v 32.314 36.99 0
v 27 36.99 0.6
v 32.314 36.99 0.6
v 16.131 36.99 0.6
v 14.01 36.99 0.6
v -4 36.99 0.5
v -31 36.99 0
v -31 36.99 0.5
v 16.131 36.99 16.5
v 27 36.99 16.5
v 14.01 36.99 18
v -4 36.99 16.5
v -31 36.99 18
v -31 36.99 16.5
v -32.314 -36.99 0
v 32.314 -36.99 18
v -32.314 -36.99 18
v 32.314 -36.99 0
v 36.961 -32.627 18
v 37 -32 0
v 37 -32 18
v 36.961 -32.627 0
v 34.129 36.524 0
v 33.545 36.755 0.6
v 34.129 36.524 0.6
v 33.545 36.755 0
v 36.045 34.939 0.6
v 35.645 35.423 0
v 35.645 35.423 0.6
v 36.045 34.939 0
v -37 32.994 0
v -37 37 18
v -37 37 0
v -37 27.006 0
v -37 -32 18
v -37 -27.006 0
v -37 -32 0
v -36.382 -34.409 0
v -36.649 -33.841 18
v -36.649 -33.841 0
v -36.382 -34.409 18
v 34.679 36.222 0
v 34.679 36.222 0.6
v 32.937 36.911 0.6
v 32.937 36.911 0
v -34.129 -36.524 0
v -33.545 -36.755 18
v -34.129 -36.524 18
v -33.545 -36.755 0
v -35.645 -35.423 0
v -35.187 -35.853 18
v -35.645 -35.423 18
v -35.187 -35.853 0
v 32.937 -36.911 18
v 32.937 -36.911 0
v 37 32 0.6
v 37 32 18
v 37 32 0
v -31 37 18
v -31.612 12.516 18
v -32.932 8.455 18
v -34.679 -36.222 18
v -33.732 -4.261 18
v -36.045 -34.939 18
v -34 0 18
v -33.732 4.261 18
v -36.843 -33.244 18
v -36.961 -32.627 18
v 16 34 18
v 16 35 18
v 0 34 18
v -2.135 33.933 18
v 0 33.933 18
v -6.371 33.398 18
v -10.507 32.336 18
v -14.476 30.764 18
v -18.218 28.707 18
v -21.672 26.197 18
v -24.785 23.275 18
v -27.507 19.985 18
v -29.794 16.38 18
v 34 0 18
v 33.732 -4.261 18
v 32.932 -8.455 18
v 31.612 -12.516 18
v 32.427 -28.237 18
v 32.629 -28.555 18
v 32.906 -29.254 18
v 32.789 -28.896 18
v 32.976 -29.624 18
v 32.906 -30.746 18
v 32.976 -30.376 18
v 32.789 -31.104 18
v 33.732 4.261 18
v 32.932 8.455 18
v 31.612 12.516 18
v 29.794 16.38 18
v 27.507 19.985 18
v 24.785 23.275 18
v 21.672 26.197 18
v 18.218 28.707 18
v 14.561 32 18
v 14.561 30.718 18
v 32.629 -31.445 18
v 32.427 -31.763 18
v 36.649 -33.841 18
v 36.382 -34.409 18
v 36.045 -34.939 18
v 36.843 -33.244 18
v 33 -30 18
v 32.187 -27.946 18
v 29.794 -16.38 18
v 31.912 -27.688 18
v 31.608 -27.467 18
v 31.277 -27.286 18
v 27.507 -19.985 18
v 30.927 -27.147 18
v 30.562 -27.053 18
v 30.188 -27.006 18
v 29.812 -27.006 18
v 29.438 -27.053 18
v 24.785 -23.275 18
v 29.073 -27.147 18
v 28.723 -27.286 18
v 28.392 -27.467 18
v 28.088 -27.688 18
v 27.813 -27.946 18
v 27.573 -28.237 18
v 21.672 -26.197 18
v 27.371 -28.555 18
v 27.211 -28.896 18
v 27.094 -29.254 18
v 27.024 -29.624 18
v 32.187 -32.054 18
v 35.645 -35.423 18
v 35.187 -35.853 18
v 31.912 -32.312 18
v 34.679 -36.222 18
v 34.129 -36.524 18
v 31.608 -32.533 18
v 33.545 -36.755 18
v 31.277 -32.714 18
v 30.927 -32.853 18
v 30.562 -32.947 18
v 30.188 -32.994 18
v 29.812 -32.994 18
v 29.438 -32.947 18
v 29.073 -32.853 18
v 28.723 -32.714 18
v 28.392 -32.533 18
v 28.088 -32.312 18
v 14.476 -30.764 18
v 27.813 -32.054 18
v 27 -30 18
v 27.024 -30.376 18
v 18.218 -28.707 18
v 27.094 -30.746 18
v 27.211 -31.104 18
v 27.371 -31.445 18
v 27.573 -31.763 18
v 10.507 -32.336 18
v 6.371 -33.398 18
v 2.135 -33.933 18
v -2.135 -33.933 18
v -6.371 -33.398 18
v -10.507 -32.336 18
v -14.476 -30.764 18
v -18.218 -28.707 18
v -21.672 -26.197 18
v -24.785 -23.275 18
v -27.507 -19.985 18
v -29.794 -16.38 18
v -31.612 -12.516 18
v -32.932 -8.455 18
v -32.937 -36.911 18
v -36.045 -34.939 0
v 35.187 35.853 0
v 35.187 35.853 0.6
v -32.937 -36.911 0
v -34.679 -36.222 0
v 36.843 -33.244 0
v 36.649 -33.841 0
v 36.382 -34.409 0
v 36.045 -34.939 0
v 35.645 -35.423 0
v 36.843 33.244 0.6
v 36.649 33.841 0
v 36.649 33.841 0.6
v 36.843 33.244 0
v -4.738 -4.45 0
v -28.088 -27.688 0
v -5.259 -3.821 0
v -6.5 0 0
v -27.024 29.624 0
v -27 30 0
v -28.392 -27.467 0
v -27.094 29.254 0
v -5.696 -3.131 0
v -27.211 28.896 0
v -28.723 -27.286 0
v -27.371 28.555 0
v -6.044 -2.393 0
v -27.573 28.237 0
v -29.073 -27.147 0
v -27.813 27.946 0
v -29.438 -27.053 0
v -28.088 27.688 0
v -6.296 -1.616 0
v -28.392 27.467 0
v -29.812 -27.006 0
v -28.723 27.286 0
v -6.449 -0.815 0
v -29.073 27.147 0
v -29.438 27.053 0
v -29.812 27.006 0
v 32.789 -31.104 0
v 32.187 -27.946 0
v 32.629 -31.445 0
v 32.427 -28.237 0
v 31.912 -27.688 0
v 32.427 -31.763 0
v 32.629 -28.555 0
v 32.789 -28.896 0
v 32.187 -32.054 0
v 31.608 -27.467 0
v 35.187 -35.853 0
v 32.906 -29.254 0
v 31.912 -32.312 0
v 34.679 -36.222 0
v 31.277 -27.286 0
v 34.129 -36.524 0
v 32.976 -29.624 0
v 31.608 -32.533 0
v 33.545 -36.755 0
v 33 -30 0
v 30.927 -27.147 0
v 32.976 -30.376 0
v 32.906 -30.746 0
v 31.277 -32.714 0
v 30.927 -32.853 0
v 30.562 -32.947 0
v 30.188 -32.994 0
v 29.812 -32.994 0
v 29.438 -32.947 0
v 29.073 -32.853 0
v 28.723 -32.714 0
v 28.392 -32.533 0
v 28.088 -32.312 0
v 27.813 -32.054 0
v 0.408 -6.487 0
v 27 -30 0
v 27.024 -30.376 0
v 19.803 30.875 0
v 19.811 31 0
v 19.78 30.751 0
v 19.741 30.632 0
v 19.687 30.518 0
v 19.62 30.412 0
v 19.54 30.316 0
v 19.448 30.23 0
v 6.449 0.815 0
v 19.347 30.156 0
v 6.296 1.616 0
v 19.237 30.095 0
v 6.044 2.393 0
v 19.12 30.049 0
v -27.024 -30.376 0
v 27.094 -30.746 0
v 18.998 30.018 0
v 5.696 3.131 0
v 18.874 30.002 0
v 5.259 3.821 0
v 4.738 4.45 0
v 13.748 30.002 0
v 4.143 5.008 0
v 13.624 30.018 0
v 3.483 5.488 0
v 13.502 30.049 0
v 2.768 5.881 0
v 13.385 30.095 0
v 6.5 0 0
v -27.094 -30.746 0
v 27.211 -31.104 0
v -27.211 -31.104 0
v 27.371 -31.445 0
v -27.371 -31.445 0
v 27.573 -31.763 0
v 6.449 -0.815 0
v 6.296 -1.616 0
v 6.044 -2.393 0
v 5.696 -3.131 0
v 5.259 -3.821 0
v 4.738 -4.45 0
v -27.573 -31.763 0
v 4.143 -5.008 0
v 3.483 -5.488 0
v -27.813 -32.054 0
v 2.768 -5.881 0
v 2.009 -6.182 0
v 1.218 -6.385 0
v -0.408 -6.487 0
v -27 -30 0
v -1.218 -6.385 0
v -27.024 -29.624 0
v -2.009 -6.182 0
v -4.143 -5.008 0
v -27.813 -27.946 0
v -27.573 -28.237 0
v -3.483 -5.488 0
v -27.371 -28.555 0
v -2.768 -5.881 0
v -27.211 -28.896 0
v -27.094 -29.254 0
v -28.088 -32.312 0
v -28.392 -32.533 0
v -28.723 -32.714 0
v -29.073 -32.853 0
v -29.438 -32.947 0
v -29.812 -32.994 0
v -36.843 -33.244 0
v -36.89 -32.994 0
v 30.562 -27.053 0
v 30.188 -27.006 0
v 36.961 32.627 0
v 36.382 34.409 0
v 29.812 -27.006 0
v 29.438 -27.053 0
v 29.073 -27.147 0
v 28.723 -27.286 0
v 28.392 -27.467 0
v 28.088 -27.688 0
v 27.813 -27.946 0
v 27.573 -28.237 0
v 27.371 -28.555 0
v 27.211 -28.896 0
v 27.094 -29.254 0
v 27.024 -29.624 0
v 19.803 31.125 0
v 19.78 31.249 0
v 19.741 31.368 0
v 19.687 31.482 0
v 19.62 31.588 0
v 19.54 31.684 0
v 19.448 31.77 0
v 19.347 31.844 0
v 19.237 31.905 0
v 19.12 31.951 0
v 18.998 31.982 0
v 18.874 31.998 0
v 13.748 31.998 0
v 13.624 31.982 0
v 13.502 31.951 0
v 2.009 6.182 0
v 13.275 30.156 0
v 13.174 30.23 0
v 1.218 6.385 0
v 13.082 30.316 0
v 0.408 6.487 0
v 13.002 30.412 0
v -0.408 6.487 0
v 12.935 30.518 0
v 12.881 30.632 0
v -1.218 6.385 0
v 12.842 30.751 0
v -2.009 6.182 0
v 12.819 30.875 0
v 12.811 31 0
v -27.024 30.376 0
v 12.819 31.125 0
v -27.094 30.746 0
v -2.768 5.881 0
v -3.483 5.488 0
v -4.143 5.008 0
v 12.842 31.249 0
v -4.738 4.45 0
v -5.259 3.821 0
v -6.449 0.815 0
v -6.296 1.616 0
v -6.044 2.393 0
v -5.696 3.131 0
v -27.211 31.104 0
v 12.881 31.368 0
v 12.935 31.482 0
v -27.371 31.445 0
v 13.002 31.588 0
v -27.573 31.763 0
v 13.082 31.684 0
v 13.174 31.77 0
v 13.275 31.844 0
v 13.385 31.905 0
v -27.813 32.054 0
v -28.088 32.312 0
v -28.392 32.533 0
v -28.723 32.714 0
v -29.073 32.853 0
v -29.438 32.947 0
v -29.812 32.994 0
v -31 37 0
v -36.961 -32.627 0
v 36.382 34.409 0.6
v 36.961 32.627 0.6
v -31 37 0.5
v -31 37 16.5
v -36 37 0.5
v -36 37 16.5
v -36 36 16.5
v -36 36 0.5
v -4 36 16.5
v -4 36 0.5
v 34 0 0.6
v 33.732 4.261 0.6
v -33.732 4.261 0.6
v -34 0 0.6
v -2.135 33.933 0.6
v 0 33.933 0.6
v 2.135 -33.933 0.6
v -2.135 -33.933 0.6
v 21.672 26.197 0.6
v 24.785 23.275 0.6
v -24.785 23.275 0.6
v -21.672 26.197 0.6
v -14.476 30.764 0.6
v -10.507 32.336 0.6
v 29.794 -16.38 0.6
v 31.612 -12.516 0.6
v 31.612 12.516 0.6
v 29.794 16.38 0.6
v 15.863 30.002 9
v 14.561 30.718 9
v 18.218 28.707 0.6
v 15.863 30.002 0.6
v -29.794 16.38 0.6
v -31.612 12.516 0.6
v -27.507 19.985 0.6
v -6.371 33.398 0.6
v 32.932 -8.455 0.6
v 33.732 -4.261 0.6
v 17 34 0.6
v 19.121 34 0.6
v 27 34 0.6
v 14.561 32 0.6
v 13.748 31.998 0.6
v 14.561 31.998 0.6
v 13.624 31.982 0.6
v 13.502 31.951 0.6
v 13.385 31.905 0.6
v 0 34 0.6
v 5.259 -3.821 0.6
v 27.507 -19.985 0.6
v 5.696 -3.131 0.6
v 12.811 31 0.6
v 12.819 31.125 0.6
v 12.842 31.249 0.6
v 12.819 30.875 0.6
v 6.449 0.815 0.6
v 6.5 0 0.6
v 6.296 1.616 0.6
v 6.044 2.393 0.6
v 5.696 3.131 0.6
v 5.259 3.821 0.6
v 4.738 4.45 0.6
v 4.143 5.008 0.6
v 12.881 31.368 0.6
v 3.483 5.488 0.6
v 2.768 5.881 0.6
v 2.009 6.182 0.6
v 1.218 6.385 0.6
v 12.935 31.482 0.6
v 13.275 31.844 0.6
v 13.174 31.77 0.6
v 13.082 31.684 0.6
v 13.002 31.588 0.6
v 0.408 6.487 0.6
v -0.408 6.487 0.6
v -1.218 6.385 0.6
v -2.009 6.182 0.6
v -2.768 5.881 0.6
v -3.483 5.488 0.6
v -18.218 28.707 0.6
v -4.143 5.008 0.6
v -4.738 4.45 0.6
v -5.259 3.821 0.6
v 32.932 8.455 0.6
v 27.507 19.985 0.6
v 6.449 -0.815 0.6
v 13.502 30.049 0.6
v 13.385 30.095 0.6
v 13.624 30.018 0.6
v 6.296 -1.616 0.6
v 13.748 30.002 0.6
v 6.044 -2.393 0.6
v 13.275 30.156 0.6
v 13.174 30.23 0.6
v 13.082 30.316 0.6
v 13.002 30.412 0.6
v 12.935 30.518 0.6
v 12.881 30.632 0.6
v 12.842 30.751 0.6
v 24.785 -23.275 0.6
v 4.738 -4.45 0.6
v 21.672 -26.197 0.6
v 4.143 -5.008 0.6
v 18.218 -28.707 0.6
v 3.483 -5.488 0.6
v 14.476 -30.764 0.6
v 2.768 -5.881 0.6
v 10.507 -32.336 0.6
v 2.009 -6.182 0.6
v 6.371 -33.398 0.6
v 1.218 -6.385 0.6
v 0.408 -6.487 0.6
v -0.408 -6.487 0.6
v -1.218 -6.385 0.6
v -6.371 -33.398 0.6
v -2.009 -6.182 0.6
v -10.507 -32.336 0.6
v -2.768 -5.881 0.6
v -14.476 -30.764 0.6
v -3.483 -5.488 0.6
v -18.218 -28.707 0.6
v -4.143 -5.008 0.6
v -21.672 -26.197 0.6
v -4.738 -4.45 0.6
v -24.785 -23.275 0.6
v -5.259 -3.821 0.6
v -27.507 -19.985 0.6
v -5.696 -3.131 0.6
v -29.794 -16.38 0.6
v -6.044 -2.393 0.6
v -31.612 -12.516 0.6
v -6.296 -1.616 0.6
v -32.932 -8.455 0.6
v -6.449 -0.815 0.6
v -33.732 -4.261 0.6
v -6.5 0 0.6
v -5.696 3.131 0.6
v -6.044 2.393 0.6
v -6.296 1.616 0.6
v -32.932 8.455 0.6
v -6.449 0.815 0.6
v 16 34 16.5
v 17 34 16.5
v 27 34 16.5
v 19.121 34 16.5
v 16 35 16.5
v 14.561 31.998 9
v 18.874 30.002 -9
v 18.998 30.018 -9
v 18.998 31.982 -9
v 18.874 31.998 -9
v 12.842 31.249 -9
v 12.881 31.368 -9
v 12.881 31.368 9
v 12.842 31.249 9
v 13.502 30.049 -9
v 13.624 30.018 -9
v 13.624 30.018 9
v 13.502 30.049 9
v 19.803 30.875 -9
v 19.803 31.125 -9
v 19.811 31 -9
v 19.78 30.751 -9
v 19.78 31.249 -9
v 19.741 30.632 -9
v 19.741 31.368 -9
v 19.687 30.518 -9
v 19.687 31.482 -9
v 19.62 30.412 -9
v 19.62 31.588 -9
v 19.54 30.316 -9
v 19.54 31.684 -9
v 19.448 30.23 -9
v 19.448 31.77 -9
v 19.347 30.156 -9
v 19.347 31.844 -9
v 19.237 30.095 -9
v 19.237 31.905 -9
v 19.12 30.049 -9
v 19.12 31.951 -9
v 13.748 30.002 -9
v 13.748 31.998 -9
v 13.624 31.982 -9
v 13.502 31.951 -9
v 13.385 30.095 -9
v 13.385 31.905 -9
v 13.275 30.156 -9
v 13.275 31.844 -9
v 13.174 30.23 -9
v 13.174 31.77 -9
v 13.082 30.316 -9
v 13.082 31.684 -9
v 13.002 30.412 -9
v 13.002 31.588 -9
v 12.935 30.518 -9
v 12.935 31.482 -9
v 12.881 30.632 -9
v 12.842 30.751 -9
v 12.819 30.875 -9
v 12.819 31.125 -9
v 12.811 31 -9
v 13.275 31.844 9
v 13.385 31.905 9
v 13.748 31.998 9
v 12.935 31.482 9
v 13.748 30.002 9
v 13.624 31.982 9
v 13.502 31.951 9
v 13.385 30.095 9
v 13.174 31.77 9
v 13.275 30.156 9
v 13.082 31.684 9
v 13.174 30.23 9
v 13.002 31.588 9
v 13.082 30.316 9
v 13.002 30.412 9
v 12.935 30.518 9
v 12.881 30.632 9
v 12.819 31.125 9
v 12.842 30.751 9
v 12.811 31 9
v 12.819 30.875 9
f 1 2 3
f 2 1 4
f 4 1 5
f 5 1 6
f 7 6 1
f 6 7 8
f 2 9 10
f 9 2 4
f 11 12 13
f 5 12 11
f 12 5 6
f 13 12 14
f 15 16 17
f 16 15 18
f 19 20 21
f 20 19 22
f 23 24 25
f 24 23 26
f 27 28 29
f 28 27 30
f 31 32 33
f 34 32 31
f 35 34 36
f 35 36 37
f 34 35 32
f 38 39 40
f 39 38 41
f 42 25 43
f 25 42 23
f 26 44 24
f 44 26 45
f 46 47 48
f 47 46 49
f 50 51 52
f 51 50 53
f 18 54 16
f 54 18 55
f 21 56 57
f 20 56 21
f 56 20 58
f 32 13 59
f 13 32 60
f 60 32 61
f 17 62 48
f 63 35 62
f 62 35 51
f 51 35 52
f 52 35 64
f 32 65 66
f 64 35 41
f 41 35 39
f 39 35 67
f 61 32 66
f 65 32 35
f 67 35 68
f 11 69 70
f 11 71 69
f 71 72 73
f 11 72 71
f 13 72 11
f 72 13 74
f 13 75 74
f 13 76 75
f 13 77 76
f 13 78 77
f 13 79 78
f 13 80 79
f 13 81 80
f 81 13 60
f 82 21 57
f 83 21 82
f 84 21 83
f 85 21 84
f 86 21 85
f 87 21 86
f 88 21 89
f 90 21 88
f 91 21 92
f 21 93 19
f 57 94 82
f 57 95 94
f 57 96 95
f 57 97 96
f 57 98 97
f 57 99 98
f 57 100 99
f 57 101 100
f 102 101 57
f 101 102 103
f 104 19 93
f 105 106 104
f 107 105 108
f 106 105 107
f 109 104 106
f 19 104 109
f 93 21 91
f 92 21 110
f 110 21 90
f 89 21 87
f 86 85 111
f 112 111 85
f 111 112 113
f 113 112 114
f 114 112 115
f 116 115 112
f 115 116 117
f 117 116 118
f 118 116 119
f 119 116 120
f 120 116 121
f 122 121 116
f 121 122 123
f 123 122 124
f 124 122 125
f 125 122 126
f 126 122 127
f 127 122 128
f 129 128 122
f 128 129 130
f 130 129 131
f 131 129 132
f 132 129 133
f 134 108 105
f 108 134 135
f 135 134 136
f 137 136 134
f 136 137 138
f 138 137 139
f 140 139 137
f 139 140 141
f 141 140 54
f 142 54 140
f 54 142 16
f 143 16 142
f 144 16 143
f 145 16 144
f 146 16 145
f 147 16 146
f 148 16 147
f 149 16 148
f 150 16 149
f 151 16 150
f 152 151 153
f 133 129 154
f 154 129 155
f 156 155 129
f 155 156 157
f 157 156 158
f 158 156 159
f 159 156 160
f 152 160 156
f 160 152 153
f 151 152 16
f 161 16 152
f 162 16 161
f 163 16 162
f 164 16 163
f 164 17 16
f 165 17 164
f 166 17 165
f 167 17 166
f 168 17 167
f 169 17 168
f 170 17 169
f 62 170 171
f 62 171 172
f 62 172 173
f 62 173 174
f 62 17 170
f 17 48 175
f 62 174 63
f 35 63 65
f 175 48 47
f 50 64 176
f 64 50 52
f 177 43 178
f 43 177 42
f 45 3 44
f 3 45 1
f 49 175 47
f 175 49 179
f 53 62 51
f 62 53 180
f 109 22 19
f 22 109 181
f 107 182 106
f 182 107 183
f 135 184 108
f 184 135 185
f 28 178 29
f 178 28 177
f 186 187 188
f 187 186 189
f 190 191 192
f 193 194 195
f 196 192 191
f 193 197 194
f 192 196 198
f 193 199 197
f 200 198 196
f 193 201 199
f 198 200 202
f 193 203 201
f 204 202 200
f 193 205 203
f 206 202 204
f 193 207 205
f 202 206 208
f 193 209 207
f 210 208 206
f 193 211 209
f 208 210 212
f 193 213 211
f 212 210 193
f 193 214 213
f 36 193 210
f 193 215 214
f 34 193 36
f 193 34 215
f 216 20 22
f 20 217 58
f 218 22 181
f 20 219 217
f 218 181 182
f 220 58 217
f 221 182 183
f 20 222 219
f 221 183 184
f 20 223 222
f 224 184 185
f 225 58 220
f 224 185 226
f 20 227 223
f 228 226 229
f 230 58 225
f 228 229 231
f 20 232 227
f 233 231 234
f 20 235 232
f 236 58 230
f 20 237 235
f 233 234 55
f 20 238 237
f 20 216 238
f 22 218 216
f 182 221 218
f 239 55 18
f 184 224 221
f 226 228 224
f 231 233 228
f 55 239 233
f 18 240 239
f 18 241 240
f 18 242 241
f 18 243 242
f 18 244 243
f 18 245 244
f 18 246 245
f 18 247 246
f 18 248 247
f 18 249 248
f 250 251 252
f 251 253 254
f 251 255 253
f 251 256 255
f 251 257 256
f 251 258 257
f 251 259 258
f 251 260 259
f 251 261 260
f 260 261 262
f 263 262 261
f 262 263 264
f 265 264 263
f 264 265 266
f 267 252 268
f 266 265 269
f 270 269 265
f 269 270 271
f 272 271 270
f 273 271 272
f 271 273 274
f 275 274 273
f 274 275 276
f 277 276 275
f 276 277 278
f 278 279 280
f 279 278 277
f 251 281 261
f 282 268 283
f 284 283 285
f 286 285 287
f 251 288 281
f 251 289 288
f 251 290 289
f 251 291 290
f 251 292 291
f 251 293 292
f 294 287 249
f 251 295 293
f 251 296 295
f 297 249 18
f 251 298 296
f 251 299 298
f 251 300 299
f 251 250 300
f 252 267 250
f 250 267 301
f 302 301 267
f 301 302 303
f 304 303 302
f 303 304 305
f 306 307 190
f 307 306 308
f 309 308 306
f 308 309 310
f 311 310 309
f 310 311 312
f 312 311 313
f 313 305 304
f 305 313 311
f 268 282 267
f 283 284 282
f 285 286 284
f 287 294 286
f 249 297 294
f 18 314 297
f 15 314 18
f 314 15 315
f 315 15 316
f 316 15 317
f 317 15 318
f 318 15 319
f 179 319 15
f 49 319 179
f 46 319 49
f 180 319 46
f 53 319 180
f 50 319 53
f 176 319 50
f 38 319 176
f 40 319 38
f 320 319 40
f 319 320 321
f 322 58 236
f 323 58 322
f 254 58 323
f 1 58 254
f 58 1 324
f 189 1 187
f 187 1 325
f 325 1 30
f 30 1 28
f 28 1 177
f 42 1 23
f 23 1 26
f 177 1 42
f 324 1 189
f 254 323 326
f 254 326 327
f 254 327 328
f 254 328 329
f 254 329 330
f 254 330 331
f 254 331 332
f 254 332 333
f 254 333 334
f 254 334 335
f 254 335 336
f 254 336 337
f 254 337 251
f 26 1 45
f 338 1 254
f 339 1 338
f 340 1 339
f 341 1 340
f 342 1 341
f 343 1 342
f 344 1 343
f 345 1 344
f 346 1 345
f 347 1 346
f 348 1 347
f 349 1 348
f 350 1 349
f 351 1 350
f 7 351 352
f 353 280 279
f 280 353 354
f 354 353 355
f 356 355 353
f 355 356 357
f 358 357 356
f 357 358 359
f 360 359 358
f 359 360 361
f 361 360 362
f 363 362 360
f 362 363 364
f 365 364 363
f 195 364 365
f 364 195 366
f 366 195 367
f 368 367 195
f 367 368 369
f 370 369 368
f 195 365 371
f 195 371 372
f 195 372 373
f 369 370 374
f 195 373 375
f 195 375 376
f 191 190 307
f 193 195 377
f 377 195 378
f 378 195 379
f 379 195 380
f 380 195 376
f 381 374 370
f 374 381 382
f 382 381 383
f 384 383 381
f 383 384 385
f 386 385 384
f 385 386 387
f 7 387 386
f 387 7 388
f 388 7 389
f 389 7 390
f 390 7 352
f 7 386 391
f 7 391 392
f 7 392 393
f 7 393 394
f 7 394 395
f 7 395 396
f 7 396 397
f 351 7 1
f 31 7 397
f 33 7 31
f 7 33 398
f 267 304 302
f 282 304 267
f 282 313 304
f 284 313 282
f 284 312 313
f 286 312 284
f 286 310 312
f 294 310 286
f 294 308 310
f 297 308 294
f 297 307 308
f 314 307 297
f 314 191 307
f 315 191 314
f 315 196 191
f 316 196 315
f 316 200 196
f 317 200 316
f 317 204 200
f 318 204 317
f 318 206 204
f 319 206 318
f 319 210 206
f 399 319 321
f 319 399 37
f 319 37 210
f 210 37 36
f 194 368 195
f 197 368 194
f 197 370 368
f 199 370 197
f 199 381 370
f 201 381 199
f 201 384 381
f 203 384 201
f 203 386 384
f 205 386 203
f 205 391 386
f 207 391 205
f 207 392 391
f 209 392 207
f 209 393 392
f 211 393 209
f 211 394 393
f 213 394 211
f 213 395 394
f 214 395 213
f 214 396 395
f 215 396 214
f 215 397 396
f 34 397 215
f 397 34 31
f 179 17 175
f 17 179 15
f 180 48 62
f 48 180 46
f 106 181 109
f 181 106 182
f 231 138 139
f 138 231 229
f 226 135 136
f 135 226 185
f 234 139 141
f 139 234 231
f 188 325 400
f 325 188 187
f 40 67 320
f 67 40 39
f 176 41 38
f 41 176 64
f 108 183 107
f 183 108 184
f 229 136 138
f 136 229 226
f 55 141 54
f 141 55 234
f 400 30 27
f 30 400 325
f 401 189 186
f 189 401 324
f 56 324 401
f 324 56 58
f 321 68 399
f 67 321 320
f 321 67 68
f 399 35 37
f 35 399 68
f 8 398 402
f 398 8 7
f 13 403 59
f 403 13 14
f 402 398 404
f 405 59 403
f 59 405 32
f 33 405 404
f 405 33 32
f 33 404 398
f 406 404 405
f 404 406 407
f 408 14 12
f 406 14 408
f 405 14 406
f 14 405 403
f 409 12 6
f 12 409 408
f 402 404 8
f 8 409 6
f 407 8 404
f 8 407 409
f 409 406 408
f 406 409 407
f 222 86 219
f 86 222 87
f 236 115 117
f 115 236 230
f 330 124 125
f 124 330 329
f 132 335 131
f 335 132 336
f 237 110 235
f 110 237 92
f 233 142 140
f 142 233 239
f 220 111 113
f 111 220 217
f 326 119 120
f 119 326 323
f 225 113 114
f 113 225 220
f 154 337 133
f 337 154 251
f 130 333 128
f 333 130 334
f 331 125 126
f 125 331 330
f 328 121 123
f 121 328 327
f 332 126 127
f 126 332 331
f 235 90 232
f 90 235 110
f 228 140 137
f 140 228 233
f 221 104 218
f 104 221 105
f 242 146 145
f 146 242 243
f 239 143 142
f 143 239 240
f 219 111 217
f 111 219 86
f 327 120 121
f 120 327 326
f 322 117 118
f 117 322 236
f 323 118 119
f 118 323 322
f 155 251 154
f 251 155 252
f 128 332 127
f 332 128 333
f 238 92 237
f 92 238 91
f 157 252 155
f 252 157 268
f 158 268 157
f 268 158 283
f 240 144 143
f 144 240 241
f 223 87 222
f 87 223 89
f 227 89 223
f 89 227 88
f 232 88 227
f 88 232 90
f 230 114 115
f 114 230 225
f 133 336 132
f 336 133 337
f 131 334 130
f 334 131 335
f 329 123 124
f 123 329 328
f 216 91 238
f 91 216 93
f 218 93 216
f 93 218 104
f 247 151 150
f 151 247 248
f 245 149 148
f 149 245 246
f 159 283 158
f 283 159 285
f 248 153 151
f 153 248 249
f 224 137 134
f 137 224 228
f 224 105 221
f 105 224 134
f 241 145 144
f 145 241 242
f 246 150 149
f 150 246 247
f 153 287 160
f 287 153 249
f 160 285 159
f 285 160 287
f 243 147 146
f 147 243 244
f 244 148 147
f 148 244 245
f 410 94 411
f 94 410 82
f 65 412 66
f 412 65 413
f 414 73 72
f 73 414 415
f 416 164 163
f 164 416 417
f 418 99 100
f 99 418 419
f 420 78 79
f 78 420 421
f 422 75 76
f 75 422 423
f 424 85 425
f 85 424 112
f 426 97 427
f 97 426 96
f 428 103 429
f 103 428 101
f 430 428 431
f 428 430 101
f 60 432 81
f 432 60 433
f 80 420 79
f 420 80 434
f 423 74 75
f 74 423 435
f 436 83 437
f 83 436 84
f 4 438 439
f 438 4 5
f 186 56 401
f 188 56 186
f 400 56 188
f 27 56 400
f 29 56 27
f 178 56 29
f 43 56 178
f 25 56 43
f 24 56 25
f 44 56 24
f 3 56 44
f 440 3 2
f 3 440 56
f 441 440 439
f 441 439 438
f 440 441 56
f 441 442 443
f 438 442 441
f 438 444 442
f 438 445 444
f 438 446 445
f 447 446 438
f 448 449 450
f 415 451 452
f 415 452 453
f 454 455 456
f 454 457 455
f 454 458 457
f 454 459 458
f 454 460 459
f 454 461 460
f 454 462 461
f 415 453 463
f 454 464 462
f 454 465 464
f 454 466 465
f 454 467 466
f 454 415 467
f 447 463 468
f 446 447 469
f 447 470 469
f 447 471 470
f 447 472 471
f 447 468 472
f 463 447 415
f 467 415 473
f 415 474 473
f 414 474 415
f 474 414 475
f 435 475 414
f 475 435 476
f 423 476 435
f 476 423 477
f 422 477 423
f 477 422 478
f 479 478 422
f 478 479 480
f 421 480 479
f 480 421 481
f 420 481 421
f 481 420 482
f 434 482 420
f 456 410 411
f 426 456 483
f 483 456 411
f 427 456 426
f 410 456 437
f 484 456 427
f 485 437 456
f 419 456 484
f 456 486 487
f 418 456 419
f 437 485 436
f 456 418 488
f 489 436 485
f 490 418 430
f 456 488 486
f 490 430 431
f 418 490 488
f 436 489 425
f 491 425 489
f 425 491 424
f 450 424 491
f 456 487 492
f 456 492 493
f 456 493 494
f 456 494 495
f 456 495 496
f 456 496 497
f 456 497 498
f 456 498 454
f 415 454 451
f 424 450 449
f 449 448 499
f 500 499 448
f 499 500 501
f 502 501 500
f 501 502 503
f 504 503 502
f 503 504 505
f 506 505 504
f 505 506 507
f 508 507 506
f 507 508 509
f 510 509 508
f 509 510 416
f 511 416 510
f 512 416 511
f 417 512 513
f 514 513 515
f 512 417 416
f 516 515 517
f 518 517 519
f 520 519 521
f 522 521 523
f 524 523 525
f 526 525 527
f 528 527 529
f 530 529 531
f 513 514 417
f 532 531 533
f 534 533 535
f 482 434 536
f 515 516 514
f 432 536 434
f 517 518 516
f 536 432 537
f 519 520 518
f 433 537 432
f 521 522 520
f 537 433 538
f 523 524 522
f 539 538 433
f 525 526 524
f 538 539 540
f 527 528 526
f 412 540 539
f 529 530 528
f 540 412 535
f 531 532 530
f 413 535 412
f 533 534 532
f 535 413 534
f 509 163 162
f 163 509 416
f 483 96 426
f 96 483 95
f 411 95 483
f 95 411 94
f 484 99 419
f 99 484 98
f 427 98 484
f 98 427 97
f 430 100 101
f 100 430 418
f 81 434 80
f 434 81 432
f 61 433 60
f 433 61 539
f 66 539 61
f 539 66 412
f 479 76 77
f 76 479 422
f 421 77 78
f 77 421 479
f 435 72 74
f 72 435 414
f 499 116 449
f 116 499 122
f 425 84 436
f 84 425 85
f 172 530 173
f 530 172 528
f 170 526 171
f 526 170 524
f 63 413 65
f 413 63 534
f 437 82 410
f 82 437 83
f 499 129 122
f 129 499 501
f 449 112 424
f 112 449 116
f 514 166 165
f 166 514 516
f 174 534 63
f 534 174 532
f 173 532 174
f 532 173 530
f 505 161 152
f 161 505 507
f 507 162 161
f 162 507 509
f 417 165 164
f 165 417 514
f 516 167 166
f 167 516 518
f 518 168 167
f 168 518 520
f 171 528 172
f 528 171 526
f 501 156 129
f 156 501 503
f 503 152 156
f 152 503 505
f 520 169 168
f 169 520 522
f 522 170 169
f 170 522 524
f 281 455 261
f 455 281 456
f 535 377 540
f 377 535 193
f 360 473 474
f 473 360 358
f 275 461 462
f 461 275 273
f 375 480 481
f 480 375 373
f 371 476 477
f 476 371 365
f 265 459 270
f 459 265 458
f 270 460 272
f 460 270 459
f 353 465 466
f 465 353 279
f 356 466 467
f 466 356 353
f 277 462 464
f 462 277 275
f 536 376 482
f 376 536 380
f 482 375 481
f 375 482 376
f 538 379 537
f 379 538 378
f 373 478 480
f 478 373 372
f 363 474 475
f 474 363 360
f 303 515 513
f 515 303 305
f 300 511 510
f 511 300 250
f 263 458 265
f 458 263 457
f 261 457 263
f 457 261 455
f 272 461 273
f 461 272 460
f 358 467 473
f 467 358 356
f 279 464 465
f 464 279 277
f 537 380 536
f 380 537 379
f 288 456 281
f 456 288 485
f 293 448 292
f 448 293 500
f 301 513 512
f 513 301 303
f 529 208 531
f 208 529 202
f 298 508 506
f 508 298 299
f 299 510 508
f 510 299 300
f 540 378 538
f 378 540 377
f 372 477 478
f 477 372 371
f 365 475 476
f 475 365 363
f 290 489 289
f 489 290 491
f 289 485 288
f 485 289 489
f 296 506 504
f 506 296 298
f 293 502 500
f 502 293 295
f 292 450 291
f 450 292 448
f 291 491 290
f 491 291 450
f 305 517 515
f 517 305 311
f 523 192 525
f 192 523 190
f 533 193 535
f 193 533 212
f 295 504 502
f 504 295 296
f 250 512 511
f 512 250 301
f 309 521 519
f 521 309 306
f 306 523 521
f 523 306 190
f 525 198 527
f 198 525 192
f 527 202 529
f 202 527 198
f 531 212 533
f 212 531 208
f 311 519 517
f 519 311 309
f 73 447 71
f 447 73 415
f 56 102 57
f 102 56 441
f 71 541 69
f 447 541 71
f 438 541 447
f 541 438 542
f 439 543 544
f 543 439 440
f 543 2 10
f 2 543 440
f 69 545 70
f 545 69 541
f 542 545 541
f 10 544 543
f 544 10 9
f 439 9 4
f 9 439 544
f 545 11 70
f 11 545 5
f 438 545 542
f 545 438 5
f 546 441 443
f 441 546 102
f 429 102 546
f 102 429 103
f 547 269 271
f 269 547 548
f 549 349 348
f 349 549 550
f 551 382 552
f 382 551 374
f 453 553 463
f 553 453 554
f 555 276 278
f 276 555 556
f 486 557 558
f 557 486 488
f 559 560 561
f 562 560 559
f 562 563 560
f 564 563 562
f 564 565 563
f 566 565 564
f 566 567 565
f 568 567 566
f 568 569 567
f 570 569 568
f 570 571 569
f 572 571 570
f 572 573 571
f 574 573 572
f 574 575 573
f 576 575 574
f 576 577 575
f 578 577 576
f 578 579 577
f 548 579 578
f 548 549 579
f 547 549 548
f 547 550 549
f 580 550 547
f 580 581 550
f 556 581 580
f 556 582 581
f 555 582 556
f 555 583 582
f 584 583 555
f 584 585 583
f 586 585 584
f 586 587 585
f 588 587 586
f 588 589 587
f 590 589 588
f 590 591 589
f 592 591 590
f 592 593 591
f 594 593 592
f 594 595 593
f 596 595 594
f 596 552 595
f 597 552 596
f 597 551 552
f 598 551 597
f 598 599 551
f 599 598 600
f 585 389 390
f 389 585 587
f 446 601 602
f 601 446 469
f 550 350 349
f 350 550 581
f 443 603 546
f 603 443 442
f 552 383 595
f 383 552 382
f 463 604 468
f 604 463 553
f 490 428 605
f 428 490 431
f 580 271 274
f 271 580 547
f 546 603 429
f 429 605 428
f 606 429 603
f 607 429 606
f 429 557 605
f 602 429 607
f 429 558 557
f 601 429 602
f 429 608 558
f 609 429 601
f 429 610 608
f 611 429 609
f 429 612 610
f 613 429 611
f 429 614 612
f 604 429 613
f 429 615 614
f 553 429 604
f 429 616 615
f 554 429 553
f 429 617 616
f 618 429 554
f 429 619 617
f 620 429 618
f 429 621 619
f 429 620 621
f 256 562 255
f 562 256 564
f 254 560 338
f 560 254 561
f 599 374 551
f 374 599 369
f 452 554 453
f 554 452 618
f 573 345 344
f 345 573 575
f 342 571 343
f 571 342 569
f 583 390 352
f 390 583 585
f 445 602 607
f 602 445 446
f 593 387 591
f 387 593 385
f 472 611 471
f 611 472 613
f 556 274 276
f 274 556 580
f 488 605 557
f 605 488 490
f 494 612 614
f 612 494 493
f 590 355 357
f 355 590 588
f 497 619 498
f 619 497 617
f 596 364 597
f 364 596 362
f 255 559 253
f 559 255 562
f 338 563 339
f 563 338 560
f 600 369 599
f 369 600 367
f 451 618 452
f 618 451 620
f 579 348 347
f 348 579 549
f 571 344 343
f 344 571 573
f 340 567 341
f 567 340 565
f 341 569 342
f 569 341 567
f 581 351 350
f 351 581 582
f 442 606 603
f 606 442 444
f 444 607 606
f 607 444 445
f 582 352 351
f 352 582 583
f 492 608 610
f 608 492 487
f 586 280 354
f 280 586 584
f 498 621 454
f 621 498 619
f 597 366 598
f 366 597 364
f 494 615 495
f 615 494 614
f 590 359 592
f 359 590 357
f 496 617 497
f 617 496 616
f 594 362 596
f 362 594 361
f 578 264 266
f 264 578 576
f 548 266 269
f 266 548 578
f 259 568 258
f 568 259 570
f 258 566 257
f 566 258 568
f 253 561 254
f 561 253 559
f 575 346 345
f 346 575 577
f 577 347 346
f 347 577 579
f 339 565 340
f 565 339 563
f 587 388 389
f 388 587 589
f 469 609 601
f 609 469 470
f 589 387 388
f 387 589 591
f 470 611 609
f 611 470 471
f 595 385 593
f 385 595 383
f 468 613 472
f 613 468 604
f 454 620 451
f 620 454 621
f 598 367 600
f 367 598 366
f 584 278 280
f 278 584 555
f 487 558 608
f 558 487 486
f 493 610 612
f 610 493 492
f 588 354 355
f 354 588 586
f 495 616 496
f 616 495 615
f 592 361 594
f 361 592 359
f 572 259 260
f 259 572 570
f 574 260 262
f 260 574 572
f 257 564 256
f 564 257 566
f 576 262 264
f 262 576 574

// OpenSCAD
$fn = 50;


union() {
	difference() {
		union() {
			hull() {
				translate(v = [-32.0000000000, 32.0000000000, 0]) {
					cylinder(h = 18, r = 5);
				}
				translate(v = [32.0000000000, 32.0000000000, 0]) {
					cylinder(h = 18, r = 5);
				}
				translate(v = [-32.0000000000, -32.0000000000, 0]) {
					cylinder(h = 18, r = 5);
				}
				translate(v = [32.0000000000, -32.0000000000, 0]) {
					cylinder(h = 18, r = 5);
				}
			}
			translate(v = [-37.0000000000, 31.0000000000, 0]) {
				cube(size = [6, 6, 18]);
			}
		}
		union() {
			translate(v = [-37.5000000000, -30.0000000000, -250.0000000000]) {
				rotate(a = [0, 0, 0]) {
					difference() {
						union() {
							hull() {
								translate(v = [7.5000000000, 0, 0]) {
									cylinder(h = 250, r = 3.0000000000, r1 = 3.0000000000, r2 = 3.0000000000);
								}
								translate(v = [-7.5000000000, 0, 0]) {
									cylinder(h = 250, r = 3.0000000000, r1 = 3.0000000000, r2 = 3.0000000000);
								}
							}
						}
						union();
					}
				}
			}
			translate(v = [-37.5000000000, 30.0000000000, -250.0000000000]) {
				rotate(a = [0, 0, 0]) {
					difference() {
						union() {
							hull() {
								translate(v = [7.5000000000, 0, 0]) {
									cylinder(h = 250, r = 3.0000000000, r1 = 3.0000000000, r2 = 3.0000000000);
								}
								translate(v = [-7.5000000000, 0, 0]) {
									cylinder(h = 250, r = 3.0000000000, r1 = 3.0000000000, r2 = 3.0000000000);
								}
							}
						}
						union();
					}
				}
			}
			translate(v = [-36.0000000000, 36.0000000000, 0.5000000000]) {
				cube(size = [32, 1, 16]);
			}
			translate(v = [30.0000000000, -30.0000000000, 0]) {
				cylinder(h = 100, r = 3.0000000000);
			}
			translate(v = [0, 0, 0.6000000000]) {
				cylinder(h = 20.4000000000, r = 34.0000000000);
			}
			translate(v = [0, 0, -9.0000000000]) {
				cylinder(h = 18, r = 6.5000000000);
			}
			translate(v = [0.0000000000, 32.0000000000, 0.6000000000]) {
				cube(size = [37.0000000000, 2, 20.4000000000]);
			}
			translate(v = [27.0000000000, 32.0000000000, 0.6000000000]) {
				cube(size = [10, 5, 20.4000000000]);
			}
			translate(v = [16.0000000000, 32.0000000000, 16.5000000000]) {
				cube(size = [21, 5, 1.5000000000]);
			}
			translate(v = [13.2500000000, 37.7500000000, 0.6000000000]) {
				rotate(a = [0, 0, -45]) {
					cube(size = [7.5000000000, 1.5000000000, 20.4000000000]);
				}
			}
			translate(v = [7.0610000000, 30.0000000000, 0.6000000000]) {
				cube(size = [7.5000000000, 2, 17.4000000000]);
			}
		}
	}
	union() {
		translate(v = [16.3110000000, 31.0000000000, -9.0000000000]) {
			rotate(a = [0, 0, 0]) {
				difference() {
					union() {
						#hull() {
							#translate(v = [2.5000000000, 0, 0]) {
								cylinder(h = 18, r = 1.0000000000, r1 = 1.0000000000, r2 = 1.0000000000);
							}
							#translate(v = [-2.5000000000, 0, 0]) {
								cylinder(h = 18, r = 1.0000000000, r1 = 1.0000000000, r2 = 1.0000000000);
							}
						}
					}
					union();
				}
			}
		}
	}
}
